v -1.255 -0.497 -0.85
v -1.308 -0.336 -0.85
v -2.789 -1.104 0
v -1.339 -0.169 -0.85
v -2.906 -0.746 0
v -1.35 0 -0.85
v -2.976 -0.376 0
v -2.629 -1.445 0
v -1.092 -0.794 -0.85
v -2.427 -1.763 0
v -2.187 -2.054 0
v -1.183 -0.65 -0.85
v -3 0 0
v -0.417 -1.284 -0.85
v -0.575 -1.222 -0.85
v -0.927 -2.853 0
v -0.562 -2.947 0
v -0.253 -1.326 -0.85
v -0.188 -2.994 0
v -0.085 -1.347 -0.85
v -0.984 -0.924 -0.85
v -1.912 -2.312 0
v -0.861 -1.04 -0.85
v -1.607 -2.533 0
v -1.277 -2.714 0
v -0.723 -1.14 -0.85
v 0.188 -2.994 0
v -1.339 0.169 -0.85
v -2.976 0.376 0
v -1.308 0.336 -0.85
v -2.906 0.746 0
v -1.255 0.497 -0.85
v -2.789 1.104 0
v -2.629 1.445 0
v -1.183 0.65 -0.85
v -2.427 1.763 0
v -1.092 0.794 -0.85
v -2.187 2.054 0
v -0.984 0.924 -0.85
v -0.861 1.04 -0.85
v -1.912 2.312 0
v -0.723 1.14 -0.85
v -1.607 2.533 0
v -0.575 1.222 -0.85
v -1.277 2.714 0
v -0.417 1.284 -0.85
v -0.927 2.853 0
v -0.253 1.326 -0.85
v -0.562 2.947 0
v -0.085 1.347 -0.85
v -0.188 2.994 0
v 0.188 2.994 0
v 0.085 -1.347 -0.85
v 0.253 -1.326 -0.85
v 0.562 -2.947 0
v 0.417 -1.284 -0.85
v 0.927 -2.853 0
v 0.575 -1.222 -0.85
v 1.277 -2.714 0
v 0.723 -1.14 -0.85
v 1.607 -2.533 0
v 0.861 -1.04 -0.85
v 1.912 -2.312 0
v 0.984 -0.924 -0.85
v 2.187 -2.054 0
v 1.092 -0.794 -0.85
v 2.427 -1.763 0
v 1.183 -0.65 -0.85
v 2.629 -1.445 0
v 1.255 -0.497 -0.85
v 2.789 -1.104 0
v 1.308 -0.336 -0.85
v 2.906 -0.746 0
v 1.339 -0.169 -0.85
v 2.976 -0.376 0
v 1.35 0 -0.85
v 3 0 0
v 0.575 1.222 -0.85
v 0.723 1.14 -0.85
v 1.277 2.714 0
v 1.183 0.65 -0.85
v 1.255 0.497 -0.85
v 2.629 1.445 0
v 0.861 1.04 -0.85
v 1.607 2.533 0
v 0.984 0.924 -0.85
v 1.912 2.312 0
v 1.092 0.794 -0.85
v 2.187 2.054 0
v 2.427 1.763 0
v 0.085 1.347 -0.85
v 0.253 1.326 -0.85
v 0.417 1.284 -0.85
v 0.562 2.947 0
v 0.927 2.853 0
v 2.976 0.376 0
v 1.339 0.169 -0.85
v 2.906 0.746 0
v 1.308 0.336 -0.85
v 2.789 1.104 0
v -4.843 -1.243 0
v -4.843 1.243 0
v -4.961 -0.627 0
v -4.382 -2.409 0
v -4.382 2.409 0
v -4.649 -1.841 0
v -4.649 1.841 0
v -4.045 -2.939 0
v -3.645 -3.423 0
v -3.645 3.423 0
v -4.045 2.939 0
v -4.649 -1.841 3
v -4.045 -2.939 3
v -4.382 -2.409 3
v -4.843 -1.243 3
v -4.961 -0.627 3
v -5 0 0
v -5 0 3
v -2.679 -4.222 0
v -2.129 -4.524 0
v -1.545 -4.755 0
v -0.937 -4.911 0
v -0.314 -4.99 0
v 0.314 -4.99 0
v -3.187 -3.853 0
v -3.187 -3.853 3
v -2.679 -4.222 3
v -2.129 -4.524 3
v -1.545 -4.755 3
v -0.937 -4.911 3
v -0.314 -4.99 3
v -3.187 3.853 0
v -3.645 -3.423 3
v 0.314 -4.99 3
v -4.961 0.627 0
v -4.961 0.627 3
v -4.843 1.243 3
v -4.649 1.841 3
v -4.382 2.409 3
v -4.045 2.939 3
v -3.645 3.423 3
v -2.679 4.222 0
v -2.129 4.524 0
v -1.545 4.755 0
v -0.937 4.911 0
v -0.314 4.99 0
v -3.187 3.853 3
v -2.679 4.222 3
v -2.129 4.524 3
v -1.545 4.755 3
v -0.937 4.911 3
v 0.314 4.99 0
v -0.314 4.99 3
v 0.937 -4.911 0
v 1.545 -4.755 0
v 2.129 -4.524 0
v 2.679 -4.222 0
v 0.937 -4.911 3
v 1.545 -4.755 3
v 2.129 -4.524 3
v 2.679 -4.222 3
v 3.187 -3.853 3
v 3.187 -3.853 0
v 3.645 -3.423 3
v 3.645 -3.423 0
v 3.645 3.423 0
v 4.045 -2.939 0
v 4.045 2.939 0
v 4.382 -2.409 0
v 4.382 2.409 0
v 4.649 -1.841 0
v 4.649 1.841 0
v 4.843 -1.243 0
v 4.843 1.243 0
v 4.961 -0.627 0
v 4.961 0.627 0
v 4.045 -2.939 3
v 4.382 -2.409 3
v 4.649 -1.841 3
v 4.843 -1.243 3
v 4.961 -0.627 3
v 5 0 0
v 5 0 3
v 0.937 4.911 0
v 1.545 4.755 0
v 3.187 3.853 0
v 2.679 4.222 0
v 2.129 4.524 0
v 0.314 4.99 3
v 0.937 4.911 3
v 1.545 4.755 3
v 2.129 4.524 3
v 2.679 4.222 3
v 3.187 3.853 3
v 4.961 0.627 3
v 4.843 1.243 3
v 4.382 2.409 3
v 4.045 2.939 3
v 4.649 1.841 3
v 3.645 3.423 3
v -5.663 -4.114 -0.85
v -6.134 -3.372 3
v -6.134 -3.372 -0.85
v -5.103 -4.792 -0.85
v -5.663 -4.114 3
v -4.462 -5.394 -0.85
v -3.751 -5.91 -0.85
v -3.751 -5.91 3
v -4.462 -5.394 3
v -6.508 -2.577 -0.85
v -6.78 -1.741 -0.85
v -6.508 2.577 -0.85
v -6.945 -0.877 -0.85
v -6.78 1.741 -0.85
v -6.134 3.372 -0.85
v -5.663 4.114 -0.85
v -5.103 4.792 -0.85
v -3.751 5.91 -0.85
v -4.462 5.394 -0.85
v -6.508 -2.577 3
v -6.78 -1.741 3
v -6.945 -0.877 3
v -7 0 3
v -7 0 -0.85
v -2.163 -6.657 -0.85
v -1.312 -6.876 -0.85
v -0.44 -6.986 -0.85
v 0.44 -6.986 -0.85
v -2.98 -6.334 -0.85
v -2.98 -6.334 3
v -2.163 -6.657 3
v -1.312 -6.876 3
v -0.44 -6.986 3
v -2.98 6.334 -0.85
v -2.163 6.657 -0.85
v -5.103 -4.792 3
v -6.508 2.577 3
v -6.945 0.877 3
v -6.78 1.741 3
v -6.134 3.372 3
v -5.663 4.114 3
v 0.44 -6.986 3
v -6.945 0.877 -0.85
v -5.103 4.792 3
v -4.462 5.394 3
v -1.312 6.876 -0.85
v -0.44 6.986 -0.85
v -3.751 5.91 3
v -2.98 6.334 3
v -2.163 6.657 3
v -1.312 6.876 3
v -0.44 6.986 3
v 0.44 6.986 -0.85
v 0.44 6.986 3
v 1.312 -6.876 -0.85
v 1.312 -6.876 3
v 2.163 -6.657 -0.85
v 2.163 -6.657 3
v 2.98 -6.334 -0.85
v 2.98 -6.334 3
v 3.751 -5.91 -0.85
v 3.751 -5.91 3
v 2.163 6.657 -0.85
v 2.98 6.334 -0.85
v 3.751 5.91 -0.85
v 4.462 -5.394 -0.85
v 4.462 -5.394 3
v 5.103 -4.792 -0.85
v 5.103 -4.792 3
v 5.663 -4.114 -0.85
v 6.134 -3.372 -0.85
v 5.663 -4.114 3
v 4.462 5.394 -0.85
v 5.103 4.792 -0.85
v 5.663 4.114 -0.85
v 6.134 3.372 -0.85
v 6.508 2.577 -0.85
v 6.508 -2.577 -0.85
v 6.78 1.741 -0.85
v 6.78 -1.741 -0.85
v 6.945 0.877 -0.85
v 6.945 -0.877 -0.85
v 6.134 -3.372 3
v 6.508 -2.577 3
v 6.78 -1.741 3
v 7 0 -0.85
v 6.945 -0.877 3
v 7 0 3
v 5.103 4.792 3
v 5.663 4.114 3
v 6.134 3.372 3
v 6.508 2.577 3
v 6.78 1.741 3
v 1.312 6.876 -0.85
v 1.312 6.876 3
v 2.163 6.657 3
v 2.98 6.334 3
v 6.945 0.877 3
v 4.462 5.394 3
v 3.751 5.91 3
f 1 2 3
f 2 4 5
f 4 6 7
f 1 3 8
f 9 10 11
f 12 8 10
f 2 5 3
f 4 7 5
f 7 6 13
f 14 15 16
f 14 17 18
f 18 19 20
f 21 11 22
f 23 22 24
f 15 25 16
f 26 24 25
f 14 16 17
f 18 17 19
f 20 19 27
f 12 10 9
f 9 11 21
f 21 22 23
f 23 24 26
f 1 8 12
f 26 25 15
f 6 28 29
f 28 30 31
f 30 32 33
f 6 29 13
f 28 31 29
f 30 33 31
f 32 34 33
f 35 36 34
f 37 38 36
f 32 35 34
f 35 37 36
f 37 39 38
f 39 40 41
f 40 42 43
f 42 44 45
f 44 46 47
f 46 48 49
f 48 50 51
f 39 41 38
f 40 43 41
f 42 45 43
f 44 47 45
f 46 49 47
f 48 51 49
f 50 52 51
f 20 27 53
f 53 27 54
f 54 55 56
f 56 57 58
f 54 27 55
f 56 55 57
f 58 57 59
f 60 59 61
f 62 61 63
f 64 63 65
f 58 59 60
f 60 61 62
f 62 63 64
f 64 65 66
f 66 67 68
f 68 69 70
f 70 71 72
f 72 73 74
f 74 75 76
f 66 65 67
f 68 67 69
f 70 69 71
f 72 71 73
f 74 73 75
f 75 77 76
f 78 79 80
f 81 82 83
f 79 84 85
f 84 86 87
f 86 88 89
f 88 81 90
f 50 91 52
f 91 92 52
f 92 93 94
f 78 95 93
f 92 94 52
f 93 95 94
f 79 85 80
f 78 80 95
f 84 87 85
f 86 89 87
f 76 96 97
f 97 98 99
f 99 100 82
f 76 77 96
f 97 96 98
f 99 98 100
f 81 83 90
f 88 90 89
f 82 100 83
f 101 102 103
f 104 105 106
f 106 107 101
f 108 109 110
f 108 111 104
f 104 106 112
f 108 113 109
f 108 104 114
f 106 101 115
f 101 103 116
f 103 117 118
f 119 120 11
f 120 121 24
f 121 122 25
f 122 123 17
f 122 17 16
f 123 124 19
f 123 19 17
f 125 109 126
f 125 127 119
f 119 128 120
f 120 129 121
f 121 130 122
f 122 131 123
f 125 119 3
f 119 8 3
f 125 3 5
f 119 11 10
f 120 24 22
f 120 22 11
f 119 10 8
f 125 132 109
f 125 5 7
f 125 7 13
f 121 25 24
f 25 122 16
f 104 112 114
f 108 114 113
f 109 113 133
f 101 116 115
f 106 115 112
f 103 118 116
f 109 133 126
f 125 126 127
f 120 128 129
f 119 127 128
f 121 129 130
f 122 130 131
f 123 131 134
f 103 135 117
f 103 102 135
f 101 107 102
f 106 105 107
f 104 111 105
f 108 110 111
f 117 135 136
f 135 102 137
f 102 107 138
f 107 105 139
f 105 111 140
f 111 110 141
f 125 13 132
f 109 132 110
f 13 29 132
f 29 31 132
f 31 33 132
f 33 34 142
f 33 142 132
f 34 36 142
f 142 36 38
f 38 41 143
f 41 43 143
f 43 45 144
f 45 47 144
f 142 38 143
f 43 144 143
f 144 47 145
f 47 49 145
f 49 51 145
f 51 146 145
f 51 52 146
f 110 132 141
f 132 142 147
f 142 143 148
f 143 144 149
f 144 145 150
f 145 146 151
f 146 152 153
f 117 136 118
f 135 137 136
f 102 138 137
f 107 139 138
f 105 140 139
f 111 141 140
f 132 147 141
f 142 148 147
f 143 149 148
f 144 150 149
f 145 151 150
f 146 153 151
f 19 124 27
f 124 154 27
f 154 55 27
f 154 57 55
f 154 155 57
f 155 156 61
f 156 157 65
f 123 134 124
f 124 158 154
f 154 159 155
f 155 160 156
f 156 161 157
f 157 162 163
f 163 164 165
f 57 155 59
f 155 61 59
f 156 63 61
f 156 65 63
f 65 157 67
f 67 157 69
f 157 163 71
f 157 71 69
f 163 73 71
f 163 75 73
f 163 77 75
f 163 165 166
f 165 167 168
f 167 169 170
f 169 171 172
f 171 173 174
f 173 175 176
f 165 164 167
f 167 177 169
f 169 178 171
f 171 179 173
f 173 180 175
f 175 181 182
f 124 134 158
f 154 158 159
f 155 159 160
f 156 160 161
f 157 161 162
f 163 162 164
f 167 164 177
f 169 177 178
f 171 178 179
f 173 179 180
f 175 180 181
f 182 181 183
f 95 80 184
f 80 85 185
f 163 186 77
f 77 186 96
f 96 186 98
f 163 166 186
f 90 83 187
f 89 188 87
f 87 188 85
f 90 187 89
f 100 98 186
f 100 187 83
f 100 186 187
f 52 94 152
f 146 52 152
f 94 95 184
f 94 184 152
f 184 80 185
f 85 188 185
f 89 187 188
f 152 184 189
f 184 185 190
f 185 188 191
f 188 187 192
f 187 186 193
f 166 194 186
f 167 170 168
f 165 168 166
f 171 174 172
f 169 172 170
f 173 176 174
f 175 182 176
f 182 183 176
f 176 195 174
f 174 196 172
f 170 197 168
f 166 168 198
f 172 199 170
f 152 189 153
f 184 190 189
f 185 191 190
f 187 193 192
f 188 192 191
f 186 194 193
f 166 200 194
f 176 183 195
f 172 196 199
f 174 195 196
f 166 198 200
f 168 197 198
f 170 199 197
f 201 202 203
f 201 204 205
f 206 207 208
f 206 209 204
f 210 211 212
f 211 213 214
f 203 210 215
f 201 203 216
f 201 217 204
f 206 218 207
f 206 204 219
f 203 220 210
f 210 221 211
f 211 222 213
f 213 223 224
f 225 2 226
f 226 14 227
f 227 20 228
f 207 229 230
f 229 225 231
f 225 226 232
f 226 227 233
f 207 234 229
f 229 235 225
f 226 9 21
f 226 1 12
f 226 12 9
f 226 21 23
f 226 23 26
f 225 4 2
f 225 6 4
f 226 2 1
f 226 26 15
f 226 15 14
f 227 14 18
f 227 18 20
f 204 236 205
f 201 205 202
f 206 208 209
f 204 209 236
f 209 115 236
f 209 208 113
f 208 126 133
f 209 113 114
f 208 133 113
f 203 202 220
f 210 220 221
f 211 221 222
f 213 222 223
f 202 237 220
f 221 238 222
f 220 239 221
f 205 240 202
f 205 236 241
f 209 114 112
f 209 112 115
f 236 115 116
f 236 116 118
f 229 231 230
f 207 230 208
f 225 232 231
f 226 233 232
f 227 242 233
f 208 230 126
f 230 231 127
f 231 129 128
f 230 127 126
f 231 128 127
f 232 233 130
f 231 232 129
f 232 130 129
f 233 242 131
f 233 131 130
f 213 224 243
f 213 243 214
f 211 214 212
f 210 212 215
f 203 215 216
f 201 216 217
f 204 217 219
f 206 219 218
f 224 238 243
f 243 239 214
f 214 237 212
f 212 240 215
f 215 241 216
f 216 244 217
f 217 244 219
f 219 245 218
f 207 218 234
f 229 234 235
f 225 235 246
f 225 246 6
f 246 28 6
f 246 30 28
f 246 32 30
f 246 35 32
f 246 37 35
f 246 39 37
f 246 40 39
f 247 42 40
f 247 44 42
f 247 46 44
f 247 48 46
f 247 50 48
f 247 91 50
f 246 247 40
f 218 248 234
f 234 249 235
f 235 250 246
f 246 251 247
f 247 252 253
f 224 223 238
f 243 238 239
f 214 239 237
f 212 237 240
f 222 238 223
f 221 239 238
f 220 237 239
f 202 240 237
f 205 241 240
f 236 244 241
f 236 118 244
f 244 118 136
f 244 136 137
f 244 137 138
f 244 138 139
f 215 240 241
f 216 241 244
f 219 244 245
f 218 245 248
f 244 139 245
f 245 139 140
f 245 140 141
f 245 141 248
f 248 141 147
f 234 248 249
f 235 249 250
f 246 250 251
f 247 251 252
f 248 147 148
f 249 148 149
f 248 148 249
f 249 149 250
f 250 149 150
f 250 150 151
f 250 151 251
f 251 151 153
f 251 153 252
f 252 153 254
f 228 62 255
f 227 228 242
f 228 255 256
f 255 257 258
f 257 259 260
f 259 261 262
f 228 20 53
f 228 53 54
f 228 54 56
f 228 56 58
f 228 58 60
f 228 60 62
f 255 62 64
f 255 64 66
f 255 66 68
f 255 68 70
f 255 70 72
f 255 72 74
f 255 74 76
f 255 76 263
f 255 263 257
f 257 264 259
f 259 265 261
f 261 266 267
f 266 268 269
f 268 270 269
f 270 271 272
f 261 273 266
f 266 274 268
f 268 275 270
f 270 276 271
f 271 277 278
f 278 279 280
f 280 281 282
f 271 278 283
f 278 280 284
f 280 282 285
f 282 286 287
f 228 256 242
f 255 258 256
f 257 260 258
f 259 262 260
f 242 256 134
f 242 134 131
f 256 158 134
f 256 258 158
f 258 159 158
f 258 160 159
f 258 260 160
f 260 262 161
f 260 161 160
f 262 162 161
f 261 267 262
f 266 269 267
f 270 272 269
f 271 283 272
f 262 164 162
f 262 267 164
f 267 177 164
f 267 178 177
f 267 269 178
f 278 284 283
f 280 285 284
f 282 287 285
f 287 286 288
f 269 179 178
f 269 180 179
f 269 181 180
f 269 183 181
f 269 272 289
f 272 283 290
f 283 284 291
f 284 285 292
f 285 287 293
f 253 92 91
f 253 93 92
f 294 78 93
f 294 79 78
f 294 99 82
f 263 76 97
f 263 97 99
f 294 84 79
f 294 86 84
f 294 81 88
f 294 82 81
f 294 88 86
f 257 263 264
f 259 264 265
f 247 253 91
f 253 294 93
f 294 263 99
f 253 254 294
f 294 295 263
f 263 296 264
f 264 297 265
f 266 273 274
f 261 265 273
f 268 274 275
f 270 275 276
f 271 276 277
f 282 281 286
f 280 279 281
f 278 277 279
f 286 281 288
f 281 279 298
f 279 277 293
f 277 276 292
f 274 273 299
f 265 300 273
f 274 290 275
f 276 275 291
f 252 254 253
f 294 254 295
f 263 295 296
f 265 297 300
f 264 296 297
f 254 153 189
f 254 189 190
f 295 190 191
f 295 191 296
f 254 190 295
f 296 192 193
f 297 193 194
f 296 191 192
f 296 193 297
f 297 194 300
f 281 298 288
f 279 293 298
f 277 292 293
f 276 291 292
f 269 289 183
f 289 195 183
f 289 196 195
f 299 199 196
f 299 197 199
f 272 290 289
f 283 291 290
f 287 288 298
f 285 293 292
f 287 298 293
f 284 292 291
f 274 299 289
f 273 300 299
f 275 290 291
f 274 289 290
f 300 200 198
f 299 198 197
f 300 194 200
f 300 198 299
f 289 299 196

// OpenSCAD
$fn = 50;

difference() {
	union() {
		translate(v = [0, 0, -0.8500000000000001]) {
			cylinder(h = 3.85, r = 7.0);
		}
	}
	union() {
		translate(v = [0, 0, 0]) {
			rotate(a = [0, 0, 0]) {
				difference() {
					union() {
						translate(v = [0, 0, -3.85]) {
							cylinder(h = 3.85, r = 1.0);
						}
						translate(v = [0, 0, -0.85]) {
							cylinder(h = 0.85, r1 = 1.35, r2 = 3.0);
						}
						translate(v = [0, 0, -3.85]) {
							cylinder(h = 3.85, r = 1.35);
						}
						translate(v = [0, 0, -3.85]) {
							cylinder(h = 3.85, r = 1.0);
						}
					}
					union();
				}
			}
		}
		#cylinder(h = 3, r = 5.0);
	}
}
